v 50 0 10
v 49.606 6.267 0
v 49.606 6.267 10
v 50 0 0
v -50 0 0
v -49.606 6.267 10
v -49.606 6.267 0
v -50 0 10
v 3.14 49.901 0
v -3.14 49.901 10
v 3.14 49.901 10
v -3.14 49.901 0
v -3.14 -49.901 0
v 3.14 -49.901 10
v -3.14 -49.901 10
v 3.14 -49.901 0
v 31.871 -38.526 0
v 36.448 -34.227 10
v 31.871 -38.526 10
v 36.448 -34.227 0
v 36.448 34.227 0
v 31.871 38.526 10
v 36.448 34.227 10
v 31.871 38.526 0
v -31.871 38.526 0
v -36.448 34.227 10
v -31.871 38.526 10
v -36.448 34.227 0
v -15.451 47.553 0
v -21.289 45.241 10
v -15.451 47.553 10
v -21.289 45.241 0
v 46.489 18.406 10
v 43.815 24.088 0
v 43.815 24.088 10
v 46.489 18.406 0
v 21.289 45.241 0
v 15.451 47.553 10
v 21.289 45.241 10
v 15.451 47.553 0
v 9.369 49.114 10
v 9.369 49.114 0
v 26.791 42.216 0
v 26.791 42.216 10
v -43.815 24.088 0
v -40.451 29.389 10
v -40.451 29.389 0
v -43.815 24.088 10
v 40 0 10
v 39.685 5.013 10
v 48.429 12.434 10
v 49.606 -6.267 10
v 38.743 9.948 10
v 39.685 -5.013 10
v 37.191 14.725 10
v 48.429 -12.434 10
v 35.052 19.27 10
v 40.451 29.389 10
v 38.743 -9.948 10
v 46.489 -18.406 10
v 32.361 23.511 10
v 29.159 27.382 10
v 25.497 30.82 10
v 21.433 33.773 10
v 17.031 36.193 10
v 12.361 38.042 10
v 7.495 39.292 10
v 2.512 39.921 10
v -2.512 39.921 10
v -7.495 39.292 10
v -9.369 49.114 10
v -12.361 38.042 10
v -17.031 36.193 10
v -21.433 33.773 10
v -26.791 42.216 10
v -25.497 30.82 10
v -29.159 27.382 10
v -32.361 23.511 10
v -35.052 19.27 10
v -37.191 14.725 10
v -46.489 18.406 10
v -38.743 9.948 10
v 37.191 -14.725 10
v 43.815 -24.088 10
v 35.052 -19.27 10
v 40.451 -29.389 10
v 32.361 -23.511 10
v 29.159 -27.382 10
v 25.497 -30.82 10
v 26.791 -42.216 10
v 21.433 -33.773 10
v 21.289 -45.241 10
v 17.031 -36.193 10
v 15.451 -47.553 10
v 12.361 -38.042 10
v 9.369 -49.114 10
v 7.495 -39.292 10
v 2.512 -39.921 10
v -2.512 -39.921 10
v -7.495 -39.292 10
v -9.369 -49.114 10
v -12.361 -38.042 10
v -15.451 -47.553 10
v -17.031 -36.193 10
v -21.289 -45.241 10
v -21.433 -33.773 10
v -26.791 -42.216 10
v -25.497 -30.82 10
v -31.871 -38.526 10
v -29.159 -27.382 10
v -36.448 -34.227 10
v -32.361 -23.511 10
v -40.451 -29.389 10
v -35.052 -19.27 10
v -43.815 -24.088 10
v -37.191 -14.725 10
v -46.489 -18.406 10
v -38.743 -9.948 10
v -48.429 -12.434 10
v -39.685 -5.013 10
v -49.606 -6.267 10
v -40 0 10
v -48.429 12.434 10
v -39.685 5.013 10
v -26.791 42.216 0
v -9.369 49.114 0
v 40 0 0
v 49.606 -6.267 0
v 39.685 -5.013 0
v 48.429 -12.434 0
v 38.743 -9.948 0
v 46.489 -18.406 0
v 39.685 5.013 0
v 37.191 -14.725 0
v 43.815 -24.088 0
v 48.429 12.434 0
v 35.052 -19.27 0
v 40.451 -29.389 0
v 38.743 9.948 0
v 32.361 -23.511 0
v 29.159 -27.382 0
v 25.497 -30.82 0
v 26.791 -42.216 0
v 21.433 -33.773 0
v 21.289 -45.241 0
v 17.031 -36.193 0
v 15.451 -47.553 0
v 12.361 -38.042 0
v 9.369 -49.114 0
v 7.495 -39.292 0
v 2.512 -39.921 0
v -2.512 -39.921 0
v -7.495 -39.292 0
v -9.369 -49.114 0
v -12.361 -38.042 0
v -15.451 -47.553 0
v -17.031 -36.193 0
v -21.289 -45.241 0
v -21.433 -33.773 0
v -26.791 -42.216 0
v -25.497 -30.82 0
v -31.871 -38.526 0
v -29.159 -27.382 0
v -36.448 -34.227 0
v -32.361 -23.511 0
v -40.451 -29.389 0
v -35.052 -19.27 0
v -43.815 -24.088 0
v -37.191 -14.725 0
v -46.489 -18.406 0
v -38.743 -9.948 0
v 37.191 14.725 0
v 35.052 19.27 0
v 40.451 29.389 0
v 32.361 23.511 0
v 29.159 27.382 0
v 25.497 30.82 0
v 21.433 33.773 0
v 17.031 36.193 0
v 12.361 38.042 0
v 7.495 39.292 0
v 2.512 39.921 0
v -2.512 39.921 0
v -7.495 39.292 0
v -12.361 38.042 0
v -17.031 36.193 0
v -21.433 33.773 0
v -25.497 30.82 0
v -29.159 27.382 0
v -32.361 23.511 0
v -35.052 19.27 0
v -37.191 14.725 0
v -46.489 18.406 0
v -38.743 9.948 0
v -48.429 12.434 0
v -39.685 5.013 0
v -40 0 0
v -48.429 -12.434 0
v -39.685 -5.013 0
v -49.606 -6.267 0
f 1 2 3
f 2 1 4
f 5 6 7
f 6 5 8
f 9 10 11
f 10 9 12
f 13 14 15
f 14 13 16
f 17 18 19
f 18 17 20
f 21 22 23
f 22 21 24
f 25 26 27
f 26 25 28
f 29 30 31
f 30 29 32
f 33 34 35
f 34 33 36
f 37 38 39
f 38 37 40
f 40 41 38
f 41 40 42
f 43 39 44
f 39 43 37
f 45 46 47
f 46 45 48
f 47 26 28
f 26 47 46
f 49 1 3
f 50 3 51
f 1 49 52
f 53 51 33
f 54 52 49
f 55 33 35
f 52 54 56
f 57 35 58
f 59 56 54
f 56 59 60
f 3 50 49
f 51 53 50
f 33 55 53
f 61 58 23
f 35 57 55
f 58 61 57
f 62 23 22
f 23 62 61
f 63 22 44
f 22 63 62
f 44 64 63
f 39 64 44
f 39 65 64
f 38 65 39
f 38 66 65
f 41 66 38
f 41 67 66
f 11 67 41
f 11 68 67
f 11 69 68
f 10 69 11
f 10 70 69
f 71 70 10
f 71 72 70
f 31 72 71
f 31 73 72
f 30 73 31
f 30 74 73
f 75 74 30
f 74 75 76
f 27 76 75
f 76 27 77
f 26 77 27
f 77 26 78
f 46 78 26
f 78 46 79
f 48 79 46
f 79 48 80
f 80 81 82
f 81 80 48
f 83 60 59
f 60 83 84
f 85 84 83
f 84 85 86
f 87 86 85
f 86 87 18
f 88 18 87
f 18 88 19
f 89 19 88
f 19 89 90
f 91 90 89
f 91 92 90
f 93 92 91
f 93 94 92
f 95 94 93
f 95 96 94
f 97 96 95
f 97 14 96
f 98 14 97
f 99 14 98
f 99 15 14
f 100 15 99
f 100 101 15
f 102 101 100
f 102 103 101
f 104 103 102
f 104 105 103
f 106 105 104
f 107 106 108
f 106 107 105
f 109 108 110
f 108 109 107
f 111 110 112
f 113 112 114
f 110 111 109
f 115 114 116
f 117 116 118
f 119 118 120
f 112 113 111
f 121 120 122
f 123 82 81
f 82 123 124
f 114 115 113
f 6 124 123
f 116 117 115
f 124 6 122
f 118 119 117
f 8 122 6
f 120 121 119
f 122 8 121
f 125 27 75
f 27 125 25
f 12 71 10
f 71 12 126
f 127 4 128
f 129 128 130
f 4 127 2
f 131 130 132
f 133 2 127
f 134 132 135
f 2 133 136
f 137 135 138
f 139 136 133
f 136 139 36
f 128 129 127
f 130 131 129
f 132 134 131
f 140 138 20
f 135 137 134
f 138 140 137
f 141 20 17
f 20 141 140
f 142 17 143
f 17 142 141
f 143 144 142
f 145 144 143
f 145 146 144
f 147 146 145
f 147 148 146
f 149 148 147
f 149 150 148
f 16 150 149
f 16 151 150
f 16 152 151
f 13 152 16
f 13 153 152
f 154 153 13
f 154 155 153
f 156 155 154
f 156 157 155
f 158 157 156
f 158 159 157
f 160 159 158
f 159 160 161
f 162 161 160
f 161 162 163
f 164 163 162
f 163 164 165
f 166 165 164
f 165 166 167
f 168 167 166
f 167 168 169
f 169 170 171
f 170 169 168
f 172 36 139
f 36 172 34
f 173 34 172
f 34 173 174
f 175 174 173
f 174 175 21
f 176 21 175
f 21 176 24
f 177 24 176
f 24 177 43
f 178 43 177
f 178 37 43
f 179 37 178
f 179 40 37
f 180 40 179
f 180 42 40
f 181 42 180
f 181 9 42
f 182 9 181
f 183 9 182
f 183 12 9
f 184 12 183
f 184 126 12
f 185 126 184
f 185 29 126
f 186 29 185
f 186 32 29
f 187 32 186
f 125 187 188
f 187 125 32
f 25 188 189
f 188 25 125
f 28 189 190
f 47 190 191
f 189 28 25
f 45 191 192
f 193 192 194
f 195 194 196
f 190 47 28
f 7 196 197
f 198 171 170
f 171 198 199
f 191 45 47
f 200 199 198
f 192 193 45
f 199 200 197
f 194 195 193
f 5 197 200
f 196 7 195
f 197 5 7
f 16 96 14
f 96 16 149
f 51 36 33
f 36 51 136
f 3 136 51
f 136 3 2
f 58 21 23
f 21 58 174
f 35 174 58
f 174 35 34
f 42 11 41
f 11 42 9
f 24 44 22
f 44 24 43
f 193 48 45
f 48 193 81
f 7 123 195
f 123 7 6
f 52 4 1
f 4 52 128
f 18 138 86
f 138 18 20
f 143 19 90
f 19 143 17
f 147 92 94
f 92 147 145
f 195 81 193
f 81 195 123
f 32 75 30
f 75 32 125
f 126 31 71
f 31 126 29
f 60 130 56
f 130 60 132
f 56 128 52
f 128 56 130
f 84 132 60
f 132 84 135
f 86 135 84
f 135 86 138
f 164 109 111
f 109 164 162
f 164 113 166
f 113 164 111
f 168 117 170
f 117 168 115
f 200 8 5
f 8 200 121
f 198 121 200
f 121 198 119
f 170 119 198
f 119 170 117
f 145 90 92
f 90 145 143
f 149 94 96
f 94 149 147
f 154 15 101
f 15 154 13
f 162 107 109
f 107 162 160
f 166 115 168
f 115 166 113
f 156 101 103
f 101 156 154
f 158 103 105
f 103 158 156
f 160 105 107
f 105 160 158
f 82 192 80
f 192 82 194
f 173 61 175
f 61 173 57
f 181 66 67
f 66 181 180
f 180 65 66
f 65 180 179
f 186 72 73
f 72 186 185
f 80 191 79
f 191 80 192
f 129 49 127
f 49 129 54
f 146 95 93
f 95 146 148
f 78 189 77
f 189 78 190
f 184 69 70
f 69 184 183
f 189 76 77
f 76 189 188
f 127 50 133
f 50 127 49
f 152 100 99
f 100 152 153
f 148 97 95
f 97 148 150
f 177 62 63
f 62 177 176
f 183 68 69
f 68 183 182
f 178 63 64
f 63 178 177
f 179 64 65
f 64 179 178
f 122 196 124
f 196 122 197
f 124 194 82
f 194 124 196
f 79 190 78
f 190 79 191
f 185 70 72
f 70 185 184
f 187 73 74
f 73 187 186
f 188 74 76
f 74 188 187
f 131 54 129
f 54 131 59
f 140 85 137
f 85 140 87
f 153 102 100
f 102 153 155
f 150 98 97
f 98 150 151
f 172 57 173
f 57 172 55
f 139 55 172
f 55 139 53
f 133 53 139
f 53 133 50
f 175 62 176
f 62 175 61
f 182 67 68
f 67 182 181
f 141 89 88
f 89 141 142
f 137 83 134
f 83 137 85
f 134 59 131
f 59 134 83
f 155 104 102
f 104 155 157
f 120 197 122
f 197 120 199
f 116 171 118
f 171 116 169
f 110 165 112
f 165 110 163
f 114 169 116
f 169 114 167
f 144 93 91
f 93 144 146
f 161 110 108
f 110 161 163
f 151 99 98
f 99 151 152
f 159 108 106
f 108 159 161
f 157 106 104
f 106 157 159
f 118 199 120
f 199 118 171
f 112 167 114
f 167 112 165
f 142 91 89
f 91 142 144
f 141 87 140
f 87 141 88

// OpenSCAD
$fn = 50;


difference() {
	union() {
		translate(v = [0, 0, 0]) {
			rotate(a = [0, 0, 0]) {
				cylinder(h = 10, r = 50.0000000000);
			}
		}
	}
	union() {
		translate(v = [0, 0, 0]) {
			rotate(a = [0, 0, 0]) {
				cylinder(h = 10, r = 40.0000000000);
			}
		}
	}
}
